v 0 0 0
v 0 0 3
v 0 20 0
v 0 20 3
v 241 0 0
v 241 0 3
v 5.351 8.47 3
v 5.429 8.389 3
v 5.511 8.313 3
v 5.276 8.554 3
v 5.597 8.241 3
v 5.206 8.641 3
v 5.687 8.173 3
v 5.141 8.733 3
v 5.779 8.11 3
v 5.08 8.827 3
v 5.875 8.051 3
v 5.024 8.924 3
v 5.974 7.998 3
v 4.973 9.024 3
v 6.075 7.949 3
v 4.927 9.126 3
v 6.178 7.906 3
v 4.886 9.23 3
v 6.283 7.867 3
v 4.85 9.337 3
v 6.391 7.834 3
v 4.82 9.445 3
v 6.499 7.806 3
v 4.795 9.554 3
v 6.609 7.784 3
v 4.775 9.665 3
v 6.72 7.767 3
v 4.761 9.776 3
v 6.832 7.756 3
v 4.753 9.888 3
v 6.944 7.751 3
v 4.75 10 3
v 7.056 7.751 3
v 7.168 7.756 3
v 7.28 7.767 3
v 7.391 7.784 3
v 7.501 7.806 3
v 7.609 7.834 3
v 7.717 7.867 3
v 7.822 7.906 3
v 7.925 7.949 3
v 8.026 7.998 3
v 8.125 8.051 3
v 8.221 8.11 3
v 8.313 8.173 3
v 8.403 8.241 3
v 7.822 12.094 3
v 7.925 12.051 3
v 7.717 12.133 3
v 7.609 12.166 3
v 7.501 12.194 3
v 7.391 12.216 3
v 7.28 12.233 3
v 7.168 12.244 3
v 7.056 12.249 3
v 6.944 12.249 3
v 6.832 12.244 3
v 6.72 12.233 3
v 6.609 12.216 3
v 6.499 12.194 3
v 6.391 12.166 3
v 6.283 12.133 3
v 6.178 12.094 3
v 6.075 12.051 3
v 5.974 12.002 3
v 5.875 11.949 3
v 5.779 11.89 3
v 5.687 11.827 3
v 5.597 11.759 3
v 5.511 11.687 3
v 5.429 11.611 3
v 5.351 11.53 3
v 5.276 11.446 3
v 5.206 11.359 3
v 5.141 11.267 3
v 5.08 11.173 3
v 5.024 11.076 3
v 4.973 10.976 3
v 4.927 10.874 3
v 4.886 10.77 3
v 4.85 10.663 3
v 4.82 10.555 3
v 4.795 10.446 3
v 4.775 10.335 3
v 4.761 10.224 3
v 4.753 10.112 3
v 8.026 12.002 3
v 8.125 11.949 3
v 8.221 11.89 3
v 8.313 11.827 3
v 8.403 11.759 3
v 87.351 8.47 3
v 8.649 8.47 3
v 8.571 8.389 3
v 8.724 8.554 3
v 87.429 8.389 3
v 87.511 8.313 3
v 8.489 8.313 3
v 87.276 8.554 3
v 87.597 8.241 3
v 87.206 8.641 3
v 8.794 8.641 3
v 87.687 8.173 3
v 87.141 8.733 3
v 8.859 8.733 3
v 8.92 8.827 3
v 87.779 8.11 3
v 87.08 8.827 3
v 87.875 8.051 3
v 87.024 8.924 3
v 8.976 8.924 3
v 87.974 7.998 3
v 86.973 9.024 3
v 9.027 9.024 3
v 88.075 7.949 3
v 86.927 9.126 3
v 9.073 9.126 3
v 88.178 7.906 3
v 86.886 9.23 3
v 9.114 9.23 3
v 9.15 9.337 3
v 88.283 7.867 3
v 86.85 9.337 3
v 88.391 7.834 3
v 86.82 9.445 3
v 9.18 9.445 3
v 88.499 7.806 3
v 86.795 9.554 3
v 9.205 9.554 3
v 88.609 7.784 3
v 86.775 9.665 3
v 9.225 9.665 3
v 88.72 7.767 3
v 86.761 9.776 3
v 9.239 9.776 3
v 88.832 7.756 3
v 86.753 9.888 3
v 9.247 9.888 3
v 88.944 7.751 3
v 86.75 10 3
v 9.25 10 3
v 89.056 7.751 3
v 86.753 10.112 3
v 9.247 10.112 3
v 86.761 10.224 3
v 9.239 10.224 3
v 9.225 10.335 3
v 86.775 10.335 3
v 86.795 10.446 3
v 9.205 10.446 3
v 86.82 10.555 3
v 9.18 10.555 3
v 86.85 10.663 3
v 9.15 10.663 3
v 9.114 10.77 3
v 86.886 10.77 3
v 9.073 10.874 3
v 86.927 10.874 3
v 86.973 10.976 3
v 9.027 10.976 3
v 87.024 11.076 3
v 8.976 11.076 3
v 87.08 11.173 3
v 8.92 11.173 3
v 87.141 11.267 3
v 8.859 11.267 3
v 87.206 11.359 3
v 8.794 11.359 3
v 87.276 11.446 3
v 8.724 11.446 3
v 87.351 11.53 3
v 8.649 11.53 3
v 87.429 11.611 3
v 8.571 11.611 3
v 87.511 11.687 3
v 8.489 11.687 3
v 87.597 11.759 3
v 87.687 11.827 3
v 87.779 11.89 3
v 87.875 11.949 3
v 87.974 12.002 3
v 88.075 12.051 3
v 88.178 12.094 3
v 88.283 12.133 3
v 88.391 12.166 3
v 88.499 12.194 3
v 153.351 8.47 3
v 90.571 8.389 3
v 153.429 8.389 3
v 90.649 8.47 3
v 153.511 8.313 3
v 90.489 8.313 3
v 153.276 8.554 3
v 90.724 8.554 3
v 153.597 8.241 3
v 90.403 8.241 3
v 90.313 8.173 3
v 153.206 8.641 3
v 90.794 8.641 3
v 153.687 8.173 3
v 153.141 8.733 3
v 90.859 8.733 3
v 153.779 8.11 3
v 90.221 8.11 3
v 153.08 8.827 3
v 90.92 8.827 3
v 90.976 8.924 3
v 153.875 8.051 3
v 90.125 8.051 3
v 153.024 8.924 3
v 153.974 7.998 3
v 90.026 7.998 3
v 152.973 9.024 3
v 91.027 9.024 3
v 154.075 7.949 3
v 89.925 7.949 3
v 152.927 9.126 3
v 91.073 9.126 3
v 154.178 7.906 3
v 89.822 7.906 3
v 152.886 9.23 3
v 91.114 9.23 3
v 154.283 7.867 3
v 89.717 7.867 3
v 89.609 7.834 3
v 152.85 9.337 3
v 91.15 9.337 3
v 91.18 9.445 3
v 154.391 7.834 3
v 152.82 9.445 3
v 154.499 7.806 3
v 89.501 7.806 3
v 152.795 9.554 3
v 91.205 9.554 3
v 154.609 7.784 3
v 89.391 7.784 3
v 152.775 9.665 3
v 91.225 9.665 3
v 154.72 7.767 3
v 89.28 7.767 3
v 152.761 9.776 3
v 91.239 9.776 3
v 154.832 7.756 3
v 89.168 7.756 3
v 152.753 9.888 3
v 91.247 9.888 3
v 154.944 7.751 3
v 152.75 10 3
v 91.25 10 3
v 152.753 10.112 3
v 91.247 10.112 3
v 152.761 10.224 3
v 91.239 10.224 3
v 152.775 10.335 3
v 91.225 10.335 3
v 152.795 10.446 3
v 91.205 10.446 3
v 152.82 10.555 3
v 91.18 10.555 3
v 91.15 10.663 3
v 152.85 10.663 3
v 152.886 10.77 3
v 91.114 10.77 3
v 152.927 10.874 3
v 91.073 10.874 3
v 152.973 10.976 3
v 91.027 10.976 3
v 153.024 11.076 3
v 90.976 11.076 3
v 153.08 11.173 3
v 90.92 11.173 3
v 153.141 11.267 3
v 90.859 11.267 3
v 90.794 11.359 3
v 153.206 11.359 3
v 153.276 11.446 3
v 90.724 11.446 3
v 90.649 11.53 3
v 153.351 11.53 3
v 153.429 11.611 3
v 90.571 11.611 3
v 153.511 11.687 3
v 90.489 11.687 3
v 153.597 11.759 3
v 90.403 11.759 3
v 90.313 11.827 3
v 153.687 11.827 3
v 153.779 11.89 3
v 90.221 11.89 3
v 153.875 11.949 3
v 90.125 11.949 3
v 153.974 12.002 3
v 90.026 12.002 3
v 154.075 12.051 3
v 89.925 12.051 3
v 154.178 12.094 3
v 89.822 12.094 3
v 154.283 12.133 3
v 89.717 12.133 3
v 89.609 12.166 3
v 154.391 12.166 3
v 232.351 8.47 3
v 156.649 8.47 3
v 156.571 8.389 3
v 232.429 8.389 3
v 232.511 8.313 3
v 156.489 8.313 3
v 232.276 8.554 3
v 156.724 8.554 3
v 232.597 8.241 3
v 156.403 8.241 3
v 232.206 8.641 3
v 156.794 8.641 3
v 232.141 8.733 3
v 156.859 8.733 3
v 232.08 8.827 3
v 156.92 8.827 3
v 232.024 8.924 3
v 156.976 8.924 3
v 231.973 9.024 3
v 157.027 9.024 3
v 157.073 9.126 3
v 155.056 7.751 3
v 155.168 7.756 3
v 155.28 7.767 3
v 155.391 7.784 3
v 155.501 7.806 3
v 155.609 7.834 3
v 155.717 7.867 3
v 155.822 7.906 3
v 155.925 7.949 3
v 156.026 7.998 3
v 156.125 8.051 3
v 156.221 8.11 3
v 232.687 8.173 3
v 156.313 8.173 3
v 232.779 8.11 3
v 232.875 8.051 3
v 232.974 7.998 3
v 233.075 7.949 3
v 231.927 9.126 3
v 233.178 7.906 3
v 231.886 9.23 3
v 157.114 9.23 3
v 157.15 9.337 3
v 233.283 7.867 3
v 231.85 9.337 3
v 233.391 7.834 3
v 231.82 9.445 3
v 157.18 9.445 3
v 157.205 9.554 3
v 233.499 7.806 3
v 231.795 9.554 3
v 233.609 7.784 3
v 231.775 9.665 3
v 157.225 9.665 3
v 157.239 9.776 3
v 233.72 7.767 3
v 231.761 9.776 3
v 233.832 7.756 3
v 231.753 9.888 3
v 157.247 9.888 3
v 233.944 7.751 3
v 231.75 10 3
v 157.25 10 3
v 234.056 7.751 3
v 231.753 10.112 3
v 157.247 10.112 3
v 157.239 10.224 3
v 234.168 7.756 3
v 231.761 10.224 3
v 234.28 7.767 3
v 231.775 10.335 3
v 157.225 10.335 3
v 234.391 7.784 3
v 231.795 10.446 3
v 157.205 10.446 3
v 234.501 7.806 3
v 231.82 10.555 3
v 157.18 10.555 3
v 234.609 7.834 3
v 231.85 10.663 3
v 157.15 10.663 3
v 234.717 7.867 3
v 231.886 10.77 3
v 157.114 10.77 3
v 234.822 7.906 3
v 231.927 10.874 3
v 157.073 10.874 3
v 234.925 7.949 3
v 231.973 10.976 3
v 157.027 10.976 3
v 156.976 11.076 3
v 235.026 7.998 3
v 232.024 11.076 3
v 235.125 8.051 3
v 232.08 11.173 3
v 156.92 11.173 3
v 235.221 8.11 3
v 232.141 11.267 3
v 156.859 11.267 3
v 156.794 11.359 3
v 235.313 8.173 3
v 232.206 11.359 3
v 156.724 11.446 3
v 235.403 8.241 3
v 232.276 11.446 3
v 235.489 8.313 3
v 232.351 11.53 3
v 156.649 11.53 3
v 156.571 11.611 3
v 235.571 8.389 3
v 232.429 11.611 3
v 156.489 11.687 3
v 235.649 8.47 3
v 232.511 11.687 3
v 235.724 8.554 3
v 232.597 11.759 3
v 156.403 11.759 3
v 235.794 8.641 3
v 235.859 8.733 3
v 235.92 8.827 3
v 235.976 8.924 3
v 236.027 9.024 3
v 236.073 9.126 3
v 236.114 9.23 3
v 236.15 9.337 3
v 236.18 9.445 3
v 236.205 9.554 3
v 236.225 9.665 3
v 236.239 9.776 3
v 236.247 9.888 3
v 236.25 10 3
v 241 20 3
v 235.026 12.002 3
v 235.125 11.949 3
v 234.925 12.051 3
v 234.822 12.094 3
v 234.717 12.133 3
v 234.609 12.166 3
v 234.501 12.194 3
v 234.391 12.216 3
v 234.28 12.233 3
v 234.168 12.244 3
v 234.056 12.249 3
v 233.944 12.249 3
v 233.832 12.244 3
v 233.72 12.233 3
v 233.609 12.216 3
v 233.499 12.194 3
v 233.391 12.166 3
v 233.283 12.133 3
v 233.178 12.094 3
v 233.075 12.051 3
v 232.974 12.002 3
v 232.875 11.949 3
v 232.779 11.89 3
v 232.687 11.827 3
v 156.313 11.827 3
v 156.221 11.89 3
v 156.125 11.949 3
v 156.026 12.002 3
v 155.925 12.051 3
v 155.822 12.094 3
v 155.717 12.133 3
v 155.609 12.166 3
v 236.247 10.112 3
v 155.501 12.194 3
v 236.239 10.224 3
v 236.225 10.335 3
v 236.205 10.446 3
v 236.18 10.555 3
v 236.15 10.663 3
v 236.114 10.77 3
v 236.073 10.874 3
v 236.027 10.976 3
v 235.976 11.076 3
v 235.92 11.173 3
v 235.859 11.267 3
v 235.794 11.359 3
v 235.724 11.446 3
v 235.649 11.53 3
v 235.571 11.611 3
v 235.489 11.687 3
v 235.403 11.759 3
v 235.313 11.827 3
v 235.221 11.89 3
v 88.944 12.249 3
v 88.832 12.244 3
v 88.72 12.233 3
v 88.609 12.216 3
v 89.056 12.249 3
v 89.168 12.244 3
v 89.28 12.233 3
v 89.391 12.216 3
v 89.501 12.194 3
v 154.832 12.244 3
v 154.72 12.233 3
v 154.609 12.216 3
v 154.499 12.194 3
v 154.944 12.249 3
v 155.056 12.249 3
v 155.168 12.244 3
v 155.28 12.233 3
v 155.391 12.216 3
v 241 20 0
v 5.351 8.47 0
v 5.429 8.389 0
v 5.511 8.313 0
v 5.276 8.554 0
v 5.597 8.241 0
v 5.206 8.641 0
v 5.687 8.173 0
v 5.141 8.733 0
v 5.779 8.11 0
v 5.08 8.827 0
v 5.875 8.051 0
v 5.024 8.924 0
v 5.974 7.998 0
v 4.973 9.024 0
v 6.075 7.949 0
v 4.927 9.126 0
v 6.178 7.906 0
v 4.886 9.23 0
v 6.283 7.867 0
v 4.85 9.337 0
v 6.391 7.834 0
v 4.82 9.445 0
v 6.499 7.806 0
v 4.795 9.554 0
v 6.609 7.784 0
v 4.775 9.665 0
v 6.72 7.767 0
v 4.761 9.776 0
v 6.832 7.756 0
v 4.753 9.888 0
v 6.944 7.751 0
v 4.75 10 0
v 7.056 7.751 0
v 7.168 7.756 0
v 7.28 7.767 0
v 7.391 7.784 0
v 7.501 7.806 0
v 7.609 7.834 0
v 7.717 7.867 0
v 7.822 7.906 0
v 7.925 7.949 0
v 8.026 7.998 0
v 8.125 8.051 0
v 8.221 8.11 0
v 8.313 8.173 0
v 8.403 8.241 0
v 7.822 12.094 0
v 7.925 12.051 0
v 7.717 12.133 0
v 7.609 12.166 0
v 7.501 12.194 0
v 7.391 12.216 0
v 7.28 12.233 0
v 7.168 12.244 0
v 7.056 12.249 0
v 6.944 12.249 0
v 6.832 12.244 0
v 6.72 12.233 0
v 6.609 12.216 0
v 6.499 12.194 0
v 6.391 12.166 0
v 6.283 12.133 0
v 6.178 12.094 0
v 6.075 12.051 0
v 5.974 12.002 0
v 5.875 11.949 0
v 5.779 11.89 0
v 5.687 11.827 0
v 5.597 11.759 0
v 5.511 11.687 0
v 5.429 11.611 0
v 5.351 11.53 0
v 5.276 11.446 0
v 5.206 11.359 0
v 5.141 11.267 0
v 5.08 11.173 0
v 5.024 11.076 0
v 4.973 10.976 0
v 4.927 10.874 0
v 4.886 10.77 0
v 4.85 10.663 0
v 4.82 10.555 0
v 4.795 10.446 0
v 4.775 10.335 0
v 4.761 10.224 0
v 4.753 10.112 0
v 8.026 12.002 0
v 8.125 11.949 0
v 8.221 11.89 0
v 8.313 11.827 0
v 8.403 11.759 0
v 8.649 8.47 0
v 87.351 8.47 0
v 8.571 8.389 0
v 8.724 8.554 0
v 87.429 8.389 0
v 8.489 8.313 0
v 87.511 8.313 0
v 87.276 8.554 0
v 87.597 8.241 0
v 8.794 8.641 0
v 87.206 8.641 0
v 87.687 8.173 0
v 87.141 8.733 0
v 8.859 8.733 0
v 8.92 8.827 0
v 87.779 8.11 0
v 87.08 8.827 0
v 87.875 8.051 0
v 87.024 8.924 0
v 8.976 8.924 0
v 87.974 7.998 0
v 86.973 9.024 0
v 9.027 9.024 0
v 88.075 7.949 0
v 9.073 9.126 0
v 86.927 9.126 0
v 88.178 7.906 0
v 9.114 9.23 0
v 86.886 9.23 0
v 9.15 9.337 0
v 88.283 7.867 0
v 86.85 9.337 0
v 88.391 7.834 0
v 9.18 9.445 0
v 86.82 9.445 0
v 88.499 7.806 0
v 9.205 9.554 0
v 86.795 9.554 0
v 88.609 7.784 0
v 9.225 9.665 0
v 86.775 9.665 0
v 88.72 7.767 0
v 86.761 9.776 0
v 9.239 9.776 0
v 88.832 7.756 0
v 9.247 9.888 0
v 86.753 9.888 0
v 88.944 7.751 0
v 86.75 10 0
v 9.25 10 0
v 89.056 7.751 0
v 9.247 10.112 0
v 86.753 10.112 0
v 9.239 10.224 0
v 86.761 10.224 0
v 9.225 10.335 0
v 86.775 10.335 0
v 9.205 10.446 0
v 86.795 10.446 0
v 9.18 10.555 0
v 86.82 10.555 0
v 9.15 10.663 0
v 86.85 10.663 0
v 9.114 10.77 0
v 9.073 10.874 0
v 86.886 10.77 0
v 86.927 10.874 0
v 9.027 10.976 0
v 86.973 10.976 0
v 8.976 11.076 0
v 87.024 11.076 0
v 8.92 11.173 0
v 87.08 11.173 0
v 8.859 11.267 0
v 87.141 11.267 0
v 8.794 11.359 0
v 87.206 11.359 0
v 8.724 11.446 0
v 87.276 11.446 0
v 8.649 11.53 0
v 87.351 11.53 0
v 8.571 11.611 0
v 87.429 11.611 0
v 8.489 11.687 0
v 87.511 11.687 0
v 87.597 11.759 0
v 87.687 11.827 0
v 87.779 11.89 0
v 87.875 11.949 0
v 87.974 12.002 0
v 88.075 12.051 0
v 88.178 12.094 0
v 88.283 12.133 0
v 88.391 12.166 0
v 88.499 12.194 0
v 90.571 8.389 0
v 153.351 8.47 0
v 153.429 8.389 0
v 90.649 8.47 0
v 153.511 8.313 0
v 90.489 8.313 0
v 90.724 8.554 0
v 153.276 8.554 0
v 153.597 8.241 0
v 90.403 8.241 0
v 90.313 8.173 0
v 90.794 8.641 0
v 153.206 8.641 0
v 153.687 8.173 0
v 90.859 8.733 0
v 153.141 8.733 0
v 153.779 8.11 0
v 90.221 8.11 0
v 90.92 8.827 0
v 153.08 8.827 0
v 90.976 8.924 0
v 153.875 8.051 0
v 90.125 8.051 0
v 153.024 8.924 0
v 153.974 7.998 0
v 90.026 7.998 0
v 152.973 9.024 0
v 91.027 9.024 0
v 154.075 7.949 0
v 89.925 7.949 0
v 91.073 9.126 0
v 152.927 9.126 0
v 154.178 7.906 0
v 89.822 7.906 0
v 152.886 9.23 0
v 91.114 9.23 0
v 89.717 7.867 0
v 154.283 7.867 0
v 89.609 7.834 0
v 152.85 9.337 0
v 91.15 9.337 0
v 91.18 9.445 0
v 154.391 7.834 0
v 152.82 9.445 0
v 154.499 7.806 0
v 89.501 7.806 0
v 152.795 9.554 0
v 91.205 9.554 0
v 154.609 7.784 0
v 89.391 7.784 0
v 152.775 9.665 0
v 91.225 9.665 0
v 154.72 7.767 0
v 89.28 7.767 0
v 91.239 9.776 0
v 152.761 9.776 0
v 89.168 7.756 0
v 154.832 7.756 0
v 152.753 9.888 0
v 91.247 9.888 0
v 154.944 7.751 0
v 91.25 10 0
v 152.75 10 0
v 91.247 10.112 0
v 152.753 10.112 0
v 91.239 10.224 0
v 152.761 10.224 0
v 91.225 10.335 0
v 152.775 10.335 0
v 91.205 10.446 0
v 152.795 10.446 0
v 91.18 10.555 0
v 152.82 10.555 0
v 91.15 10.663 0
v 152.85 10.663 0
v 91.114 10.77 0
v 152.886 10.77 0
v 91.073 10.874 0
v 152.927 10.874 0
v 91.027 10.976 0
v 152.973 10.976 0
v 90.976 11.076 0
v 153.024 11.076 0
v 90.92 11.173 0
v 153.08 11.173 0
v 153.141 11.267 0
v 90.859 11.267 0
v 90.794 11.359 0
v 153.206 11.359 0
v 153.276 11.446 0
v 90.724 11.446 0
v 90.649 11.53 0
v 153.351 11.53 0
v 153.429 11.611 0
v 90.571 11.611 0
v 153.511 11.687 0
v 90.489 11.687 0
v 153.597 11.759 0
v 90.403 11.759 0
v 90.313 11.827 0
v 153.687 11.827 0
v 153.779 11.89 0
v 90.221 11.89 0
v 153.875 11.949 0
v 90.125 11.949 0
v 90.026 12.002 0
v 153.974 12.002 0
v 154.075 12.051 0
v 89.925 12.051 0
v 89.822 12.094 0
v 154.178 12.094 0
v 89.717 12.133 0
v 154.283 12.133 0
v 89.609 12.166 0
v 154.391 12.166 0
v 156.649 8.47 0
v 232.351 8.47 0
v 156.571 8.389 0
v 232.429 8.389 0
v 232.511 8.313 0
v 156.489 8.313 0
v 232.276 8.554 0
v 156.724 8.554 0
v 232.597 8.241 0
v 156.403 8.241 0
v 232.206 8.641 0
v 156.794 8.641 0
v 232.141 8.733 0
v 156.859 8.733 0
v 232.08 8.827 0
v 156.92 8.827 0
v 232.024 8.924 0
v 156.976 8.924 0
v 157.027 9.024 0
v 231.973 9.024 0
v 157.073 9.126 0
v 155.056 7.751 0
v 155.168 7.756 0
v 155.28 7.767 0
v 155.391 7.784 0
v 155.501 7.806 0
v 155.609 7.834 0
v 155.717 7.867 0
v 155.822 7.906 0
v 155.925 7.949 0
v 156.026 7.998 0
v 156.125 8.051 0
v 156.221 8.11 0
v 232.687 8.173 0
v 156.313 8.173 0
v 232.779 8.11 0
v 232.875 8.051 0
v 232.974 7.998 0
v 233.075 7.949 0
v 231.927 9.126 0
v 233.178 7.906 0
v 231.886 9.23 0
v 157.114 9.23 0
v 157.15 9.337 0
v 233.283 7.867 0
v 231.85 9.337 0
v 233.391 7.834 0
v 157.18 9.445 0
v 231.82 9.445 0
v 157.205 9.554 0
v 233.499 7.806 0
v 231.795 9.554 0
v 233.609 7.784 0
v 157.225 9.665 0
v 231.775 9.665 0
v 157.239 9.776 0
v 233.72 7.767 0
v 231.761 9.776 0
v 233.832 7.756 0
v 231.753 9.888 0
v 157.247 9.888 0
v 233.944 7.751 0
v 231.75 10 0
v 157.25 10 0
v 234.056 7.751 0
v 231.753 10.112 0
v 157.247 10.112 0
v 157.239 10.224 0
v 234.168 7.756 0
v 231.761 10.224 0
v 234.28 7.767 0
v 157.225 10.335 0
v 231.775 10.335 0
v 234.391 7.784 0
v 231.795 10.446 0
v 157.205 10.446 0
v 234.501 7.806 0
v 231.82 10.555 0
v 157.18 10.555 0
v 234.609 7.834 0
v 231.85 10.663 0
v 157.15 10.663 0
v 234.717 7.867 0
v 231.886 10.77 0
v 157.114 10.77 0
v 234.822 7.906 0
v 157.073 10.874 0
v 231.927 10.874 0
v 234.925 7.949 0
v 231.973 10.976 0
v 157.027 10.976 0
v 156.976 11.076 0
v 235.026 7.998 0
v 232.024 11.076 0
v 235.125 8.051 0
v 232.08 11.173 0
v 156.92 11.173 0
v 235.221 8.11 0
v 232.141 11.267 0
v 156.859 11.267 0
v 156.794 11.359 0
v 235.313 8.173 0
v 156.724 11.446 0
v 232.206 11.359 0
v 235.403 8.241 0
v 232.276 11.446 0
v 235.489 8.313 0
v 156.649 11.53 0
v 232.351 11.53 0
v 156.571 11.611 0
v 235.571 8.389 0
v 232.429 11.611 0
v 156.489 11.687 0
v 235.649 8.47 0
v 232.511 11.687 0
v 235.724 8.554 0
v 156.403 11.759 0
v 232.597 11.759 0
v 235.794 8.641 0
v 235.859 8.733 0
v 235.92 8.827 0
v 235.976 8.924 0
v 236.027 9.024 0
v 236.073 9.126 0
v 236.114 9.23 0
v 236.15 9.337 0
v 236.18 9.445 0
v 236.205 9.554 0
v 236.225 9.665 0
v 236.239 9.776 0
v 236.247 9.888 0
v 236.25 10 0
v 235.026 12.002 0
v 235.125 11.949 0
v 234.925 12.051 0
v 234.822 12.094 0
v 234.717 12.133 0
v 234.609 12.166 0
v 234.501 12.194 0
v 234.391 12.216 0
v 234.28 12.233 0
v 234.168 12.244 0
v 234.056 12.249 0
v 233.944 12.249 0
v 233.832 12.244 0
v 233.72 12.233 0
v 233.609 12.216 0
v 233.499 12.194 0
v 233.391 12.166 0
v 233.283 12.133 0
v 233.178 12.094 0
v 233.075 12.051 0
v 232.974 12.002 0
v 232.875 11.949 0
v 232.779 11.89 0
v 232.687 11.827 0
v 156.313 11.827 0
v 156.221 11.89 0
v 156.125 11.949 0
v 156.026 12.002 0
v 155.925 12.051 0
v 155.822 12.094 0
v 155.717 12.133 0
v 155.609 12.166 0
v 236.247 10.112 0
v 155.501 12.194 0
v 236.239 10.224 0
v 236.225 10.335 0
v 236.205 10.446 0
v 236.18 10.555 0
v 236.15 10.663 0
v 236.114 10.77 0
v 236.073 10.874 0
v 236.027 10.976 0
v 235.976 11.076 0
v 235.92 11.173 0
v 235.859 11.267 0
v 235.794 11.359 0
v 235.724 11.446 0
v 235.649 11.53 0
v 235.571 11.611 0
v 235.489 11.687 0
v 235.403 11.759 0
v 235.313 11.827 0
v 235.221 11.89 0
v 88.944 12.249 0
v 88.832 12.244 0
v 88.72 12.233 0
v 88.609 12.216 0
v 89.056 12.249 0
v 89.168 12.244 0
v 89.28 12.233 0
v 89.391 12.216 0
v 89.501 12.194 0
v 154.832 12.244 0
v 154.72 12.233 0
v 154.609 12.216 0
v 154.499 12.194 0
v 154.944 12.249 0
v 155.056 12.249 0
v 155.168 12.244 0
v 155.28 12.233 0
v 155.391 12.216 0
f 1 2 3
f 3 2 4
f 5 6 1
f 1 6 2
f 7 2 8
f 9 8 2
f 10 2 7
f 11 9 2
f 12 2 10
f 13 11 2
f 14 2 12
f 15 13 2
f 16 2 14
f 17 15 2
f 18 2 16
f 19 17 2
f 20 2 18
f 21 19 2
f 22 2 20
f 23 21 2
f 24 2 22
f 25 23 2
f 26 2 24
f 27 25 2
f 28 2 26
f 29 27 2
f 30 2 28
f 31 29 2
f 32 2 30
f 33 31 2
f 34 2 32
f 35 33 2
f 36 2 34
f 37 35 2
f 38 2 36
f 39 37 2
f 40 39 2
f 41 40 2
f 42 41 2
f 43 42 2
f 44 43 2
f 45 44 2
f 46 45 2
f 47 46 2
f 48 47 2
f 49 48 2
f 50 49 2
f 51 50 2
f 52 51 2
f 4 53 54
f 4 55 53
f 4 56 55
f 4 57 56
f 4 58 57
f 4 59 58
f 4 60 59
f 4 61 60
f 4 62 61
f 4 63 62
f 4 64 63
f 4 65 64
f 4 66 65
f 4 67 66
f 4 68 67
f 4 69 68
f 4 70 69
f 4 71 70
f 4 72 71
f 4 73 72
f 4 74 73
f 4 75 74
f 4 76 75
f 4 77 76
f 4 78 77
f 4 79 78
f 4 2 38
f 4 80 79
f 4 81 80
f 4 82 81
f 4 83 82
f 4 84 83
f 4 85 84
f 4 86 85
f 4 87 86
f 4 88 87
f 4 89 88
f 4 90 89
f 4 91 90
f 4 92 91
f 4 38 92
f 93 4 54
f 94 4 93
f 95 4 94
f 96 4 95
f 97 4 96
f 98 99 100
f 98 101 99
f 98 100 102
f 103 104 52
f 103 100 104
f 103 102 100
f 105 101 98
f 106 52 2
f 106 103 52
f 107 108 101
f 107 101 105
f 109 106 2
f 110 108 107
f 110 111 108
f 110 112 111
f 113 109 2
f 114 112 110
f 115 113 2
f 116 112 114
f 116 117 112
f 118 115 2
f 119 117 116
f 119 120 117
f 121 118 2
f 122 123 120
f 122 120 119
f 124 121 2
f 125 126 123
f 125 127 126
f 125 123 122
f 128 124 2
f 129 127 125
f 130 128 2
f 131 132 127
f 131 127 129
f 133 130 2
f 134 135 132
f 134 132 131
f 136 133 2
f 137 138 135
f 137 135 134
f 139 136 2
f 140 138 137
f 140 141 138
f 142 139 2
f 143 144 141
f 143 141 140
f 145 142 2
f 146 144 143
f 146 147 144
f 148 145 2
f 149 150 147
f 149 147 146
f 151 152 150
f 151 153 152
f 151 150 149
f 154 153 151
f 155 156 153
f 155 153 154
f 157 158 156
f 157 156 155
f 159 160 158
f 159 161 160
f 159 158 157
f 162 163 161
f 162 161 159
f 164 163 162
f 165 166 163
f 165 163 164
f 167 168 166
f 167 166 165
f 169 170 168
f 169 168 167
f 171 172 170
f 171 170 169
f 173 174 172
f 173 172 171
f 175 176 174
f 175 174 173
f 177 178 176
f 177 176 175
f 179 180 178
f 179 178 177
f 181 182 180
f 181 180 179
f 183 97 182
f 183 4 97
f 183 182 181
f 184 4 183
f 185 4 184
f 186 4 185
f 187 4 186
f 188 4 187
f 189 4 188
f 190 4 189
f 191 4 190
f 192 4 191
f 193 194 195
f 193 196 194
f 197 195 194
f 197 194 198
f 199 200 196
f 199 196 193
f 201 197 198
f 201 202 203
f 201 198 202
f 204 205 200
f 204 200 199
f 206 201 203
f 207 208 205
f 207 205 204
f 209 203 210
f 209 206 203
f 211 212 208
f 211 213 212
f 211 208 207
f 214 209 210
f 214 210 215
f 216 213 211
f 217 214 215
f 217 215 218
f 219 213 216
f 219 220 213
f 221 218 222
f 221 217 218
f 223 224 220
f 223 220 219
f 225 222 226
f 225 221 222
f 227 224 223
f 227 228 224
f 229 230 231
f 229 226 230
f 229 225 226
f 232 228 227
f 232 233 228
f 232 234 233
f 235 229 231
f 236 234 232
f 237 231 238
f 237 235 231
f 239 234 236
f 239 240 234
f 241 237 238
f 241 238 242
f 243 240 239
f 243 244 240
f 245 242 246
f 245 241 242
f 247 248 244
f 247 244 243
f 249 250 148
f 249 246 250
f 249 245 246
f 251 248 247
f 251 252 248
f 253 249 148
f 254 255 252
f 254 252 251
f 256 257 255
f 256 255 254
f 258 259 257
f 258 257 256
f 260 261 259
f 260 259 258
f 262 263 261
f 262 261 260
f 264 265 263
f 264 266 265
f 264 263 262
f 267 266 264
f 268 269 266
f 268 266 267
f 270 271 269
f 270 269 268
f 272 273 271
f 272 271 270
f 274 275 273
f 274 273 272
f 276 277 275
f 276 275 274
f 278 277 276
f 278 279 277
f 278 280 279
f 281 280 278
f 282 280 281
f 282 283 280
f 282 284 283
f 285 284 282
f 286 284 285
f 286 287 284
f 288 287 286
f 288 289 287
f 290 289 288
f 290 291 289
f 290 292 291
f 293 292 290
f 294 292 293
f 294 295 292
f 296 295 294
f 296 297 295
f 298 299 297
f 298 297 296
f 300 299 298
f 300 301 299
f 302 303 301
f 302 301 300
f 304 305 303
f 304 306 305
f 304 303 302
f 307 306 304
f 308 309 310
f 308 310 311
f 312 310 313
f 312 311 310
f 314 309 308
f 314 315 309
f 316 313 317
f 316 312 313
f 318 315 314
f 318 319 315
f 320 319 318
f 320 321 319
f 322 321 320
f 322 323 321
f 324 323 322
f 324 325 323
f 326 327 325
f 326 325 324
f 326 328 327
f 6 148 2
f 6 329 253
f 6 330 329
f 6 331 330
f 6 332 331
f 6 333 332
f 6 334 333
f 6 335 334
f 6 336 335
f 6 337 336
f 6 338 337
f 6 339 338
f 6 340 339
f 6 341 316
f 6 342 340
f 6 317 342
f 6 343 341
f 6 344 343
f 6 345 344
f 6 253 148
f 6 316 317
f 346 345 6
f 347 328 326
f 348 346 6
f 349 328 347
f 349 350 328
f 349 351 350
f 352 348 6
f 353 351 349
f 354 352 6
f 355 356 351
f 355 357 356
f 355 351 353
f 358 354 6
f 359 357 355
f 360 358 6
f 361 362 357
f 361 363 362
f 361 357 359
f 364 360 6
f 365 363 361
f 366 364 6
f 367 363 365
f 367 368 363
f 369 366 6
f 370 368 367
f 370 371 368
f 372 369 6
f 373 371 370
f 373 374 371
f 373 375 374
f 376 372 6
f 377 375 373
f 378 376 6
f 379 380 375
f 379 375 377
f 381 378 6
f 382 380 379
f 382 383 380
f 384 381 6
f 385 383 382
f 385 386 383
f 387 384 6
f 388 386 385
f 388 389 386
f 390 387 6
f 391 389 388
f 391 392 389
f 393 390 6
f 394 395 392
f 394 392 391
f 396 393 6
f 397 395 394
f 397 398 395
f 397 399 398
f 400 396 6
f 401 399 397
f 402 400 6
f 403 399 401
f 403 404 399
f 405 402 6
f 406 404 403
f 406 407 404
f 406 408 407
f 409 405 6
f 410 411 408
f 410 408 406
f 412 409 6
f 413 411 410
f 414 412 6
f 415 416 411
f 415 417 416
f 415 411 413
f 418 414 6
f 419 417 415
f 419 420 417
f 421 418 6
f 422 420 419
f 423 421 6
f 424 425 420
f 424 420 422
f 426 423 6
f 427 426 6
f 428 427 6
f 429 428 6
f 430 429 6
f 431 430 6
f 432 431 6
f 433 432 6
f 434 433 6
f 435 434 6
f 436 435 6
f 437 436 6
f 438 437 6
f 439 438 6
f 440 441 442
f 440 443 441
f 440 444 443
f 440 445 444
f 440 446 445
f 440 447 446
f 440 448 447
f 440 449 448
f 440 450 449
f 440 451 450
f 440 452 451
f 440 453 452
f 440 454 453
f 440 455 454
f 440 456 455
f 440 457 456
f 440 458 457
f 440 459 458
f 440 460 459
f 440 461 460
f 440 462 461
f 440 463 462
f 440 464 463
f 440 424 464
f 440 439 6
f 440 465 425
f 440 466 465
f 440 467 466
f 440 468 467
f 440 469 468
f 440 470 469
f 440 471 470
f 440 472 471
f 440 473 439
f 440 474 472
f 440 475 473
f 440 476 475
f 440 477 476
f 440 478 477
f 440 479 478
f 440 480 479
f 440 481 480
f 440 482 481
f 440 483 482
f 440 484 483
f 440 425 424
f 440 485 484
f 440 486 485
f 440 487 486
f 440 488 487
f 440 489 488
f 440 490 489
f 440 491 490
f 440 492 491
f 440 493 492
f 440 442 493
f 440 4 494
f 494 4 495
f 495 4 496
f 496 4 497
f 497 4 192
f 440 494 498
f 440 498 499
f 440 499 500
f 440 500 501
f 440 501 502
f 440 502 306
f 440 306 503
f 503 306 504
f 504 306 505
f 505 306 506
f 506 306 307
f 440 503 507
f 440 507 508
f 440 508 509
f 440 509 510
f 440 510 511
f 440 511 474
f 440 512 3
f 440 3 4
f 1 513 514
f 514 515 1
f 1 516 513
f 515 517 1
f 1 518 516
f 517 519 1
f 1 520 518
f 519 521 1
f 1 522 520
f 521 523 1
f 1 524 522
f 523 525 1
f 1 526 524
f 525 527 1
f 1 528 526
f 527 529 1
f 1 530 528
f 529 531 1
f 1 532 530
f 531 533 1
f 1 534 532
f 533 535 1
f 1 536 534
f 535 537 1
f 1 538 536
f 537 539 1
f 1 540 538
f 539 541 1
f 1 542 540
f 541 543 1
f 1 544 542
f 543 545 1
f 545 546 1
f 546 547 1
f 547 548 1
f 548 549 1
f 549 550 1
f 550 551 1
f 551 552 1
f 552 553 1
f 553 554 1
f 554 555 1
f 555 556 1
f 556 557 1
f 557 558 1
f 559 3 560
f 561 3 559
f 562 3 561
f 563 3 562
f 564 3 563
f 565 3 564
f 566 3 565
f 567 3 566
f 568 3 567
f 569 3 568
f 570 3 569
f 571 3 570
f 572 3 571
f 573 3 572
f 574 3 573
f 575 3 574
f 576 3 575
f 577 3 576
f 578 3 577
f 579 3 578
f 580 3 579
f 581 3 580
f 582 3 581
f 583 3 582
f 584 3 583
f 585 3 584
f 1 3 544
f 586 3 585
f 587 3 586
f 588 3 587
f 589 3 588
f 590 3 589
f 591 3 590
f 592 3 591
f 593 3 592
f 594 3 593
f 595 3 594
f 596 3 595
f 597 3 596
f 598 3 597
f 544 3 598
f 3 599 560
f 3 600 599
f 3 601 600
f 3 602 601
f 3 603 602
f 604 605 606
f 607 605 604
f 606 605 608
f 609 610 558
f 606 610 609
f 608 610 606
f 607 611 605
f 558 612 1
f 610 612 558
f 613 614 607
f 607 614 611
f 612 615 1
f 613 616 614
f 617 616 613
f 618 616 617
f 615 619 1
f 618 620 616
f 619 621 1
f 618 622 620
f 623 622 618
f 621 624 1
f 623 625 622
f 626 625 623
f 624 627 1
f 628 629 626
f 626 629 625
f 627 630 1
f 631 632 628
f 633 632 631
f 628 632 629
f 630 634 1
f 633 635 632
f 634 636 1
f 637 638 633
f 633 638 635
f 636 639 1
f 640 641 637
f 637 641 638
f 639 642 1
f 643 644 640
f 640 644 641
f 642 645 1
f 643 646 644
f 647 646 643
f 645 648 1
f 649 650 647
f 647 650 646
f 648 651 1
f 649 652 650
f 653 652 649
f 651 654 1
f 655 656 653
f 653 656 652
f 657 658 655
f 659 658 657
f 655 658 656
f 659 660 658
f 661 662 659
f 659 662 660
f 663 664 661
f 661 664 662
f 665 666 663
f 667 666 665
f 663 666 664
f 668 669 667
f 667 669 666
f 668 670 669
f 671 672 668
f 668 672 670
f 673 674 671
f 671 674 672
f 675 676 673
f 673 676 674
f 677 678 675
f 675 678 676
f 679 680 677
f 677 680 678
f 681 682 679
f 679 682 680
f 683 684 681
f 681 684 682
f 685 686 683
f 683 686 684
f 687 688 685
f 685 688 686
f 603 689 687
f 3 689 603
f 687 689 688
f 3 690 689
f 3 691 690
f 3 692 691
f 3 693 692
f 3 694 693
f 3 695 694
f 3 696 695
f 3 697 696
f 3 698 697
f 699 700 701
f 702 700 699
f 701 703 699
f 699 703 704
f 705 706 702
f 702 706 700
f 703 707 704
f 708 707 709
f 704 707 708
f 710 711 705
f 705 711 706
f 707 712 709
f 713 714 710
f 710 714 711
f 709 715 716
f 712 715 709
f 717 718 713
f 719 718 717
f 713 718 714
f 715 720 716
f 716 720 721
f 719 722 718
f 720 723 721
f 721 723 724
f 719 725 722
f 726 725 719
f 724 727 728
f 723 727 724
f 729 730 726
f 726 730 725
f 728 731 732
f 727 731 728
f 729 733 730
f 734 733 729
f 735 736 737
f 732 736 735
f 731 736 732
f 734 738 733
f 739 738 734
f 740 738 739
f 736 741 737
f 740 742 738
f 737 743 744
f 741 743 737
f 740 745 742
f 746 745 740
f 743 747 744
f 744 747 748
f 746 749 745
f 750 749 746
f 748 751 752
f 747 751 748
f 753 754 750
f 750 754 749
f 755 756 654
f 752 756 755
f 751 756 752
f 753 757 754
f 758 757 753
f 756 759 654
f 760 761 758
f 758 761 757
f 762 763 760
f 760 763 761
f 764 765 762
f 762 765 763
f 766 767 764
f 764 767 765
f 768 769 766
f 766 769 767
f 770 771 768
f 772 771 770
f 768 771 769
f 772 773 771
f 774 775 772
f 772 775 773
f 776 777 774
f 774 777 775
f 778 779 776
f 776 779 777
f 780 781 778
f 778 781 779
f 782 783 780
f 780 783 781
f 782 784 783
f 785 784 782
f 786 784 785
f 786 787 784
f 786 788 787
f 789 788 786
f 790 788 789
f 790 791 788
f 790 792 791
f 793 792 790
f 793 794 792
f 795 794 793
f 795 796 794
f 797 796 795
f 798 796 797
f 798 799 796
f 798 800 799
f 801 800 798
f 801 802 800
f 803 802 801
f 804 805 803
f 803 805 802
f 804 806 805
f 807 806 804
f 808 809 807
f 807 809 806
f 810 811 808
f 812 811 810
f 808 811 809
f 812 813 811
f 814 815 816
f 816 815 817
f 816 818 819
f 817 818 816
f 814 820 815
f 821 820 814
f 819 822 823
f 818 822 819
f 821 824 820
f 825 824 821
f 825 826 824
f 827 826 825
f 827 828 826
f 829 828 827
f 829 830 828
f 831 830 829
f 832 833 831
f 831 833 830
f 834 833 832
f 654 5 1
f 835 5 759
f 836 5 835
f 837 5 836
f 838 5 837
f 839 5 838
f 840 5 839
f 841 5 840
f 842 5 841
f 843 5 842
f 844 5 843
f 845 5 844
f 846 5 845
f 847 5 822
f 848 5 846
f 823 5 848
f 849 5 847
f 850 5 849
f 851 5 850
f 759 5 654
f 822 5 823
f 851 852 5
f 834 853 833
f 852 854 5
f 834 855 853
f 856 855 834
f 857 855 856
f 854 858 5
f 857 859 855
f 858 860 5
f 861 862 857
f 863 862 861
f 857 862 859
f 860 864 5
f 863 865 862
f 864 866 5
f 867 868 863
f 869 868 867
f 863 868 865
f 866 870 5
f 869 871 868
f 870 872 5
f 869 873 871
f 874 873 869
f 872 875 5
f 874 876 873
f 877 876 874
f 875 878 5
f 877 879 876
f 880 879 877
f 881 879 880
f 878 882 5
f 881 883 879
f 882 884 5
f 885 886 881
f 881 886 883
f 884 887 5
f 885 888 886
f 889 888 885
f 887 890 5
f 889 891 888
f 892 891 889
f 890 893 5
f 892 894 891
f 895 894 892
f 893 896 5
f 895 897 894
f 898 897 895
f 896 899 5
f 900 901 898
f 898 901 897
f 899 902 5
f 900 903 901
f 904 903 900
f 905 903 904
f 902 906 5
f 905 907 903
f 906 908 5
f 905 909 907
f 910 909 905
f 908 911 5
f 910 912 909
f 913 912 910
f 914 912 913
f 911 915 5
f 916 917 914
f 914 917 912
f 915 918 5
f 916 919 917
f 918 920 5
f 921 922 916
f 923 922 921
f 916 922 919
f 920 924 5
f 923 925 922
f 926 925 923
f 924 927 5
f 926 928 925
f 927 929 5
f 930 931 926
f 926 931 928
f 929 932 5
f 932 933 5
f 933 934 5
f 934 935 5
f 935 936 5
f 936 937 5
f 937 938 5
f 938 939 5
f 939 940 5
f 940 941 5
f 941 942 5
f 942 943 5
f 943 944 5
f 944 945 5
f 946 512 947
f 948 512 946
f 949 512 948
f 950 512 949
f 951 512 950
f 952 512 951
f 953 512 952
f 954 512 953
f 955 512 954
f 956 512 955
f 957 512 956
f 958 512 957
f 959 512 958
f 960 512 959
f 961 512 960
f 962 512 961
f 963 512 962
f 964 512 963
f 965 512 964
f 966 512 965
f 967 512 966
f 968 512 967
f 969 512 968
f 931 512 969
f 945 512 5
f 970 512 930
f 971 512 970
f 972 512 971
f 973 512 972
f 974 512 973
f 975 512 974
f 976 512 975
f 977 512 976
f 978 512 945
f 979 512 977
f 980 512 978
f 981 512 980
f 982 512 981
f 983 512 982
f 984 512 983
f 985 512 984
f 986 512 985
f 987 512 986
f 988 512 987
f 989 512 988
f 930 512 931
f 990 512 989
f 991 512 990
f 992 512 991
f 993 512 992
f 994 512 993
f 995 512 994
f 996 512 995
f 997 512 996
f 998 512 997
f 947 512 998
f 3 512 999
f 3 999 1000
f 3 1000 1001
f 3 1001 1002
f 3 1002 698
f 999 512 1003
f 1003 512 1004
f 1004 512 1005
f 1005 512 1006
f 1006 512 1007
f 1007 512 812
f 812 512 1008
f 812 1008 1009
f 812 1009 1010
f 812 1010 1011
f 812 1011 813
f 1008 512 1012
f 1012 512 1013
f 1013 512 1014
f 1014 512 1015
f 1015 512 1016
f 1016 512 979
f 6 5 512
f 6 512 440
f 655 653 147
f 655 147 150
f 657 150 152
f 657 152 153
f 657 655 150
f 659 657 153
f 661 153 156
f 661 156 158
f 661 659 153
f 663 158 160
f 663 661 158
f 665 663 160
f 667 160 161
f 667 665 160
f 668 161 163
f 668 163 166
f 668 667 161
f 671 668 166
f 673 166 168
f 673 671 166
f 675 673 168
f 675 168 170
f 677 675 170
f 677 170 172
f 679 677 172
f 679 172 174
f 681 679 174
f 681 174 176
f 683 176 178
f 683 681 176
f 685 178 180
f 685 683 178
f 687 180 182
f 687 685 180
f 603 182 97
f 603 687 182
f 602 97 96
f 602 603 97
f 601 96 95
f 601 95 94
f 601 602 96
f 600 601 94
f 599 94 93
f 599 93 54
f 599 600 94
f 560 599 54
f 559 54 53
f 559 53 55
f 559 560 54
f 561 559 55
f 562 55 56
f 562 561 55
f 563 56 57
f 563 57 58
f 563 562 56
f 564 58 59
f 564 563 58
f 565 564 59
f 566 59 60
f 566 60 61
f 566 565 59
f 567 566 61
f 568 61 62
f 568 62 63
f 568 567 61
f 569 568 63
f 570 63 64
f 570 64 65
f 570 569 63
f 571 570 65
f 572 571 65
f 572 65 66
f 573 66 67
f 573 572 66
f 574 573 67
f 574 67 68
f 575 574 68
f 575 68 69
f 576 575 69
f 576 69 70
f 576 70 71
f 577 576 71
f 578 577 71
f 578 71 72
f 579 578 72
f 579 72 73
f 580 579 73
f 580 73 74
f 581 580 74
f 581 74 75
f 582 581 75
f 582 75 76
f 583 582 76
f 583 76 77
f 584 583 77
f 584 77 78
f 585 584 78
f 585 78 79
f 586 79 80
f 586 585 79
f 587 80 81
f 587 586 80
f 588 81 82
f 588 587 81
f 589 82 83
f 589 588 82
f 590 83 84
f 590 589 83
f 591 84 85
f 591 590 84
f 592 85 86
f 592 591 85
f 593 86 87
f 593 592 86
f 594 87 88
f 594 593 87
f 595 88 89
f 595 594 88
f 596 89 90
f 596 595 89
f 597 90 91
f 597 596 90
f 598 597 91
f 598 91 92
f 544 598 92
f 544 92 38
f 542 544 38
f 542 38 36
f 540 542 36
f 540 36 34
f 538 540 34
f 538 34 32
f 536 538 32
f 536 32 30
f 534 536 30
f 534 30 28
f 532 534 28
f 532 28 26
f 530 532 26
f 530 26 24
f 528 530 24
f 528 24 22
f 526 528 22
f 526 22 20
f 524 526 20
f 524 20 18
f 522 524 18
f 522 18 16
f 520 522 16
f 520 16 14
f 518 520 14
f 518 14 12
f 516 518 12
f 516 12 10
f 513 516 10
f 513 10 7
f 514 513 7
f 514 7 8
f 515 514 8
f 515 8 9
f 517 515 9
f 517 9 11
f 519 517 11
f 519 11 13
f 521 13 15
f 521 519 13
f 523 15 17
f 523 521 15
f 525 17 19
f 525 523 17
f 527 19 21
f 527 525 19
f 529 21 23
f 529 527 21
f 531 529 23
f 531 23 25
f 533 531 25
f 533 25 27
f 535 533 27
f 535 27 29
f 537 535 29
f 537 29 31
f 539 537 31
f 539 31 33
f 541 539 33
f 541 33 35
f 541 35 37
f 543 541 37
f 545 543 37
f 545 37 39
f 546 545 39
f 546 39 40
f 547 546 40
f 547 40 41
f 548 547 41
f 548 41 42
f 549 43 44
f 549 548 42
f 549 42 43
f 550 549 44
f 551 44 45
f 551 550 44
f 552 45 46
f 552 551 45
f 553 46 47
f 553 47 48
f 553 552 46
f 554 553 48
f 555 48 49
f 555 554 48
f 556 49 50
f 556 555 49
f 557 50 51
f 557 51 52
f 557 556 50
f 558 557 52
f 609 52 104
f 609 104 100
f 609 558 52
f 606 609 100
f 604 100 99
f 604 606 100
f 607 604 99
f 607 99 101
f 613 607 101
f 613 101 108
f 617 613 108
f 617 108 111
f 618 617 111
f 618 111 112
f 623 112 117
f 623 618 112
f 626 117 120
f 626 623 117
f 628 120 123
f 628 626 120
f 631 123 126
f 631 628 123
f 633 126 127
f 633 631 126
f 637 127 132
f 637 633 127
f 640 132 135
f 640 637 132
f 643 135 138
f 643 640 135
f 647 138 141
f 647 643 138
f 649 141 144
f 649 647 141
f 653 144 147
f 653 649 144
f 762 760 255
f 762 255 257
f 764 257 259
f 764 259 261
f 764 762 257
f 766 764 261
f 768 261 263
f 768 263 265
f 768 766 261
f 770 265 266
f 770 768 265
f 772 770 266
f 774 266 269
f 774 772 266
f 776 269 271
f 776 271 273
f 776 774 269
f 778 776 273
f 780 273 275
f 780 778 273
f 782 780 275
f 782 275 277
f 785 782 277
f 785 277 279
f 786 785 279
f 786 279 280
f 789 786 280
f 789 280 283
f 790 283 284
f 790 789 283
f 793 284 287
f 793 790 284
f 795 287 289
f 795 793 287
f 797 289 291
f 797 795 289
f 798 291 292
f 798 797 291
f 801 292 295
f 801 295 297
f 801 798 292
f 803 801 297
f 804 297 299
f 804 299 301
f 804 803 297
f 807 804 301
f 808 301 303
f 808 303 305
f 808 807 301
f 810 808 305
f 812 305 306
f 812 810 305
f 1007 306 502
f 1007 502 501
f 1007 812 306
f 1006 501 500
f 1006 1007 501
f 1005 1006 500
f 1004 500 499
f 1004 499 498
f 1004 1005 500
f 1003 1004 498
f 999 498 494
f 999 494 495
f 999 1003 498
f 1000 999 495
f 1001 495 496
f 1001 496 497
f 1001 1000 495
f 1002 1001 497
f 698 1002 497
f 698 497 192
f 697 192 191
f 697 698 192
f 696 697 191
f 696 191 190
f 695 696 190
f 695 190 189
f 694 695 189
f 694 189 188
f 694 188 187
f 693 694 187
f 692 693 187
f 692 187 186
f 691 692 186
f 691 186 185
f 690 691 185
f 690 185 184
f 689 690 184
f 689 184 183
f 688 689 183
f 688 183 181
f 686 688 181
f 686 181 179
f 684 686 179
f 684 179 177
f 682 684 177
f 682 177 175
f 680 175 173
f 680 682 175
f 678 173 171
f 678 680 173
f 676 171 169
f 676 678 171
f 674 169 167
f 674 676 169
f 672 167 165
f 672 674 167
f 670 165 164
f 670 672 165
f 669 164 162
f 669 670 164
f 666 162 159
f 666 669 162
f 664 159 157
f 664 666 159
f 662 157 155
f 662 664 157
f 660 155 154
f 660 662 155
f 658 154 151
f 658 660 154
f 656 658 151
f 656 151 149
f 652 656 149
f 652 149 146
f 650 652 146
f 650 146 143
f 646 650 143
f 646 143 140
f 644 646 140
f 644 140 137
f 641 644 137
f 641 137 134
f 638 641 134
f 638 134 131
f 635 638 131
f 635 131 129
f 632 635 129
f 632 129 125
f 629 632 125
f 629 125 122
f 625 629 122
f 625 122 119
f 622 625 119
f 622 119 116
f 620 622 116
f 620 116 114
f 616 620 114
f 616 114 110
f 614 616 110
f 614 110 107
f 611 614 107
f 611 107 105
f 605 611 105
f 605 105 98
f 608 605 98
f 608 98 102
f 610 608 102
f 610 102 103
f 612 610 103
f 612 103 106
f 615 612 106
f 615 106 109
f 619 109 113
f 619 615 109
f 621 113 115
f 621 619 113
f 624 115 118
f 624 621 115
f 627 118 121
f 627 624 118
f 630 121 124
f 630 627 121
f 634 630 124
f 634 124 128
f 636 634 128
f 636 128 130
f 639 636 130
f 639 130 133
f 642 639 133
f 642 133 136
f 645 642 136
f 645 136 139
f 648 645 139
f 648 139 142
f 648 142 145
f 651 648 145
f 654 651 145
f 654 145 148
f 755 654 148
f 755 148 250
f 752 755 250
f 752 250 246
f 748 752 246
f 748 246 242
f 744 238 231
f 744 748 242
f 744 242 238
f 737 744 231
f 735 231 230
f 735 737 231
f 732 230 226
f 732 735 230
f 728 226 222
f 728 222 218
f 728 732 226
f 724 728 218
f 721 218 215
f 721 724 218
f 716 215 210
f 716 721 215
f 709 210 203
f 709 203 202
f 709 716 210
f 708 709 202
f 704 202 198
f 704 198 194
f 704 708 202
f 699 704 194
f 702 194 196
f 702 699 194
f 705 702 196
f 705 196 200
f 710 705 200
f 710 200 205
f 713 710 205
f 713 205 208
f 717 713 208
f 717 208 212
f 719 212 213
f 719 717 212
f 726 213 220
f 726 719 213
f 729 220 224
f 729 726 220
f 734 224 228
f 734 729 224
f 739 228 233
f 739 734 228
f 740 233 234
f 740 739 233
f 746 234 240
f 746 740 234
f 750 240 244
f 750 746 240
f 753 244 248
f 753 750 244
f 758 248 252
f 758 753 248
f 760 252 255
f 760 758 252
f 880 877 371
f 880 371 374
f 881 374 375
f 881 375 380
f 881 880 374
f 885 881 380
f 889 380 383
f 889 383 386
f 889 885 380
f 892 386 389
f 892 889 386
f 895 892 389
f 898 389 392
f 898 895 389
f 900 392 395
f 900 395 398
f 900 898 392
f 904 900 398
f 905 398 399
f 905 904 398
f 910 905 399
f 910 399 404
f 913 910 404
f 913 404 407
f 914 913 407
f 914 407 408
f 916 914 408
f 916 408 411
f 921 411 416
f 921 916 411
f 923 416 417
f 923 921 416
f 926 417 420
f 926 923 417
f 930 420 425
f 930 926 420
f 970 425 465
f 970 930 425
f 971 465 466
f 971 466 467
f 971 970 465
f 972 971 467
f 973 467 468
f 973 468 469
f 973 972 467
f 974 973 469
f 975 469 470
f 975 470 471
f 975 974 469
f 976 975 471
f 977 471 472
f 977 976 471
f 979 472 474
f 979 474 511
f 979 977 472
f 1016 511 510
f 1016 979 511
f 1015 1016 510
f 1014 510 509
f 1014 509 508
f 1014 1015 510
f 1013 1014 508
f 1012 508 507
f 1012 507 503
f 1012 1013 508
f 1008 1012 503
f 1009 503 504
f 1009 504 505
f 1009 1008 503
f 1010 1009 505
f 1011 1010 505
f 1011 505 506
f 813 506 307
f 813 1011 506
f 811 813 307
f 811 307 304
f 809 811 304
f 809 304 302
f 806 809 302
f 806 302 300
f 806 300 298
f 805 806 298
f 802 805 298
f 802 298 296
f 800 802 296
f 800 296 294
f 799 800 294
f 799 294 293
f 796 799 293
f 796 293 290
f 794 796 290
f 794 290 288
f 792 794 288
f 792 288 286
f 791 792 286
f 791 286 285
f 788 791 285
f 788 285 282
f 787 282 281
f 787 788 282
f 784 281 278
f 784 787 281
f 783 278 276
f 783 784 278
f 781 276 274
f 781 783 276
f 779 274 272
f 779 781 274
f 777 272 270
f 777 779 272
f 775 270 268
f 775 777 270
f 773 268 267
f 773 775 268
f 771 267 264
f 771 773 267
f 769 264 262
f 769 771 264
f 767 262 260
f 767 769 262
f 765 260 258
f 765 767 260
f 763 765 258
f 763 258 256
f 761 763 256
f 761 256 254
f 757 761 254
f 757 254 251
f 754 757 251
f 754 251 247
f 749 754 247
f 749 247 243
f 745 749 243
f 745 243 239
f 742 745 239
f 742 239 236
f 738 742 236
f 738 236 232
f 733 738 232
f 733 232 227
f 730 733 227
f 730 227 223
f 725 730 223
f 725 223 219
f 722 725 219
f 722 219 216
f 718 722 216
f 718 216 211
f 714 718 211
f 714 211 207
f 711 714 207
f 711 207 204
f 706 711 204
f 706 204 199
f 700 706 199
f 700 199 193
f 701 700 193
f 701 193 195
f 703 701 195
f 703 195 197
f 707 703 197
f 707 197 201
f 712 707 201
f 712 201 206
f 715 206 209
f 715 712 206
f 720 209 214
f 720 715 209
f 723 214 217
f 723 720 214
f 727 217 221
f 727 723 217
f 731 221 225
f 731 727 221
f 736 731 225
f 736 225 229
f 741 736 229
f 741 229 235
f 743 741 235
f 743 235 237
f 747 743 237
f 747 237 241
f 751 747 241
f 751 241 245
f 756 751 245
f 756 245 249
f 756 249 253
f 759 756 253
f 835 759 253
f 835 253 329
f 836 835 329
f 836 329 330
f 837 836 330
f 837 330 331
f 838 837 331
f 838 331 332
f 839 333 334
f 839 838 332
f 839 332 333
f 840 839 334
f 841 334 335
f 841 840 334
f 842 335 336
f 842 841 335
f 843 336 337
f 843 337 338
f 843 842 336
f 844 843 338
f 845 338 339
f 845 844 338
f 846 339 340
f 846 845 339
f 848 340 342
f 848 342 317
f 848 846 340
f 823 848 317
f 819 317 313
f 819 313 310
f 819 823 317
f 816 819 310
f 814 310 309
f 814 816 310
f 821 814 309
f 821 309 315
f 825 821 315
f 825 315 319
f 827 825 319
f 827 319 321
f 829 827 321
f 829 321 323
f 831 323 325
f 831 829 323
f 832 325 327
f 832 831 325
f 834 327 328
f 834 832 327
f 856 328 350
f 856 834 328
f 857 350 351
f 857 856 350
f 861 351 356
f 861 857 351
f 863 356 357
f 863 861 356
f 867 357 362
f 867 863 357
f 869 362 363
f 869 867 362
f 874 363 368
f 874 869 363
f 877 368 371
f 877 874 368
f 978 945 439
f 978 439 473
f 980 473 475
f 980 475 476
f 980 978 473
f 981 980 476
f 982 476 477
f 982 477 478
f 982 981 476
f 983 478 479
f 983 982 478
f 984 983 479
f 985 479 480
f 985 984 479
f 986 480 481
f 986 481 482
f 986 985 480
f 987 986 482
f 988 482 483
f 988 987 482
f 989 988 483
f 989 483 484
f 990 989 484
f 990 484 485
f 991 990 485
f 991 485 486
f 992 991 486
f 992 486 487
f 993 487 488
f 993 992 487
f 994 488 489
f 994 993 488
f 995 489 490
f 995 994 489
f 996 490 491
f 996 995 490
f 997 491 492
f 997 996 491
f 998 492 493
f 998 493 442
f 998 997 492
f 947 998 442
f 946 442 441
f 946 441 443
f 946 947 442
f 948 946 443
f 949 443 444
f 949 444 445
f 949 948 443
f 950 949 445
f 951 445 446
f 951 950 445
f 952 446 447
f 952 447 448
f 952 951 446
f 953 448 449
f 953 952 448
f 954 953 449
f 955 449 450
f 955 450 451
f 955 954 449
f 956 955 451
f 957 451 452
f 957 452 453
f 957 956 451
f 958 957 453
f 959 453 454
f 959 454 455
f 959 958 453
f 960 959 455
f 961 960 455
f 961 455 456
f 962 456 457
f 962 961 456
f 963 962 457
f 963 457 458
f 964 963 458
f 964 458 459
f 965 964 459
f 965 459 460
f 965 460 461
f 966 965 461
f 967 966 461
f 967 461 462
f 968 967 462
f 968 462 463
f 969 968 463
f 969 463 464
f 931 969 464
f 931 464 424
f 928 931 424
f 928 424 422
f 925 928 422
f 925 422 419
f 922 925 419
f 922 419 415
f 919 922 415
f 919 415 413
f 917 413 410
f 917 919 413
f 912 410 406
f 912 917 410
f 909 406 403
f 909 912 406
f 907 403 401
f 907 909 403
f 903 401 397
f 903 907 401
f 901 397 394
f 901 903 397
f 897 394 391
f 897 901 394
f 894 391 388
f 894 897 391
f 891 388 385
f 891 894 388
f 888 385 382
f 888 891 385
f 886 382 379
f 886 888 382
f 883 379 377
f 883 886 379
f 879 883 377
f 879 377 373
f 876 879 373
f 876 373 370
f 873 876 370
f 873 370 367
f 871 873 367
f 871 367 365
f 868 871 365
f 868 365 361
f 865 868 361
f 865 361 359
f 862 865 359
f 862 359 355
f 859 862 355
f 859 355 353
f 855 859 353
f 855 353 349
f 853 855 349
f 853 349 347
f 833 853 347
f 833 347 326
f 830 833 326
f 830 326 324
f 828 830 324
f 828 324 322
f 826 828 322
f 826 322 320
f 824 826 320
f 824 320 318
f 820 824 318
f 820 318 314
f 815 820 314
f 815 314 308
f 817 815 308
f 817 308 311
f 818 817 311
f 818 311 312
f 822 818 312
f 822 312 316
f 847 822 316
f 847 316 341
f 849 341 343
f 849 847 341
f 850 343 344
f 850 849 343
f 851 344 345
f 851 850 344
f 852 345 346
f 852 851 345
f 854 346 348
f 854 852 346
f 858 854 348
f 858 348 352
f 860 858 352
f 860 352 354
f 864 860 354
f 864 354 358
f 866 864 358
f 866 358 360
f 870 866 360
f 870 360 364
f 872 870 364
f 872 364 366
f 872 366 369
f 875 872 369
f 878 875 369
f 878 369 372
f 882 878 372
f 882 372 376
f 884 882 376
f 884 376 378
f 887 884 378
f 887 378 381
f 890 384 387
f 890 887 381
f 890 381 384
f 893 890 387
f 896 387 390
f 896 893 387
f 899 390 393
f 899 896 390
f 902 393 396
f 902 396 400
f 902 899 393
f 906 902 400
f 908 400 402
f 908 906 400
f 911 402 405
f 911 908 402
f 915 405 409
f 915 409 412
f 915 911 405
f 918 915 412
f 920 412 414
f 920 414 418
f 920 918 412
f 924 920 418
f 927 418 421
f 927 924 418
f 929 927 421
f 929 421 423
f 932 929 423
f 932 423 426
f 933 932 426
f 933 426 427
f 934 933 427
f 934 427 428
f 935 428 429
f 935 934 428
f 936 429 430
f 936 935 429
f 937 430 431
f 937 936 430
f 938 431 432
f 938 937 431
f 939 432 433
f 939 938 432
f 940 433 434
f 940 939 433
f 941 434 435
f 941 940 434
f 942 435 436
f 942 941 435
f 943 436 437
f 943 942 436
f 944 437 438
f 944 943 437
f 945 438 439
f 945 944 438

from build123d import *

# Parameters (mm, degrees)
BOX_W             = 241
BOX_H             = 20
BOX_DEPTH         = 3
CYLINDER_R        = 2.25
CYLINDER_DEPTH    = 3
CYLINDER001_R     = 2.25
CYLINDER001_DEPTH = 3
CYLINDER002_R     = 2.25
CYLINDER002_DEPTH = 3
CYLINDER003_R     = 2.25
CYLINDER003_DEPTH = 3


with BuildPart() as part:
    # Box → Box (join)
    with BuildSketch(Plane.XY):
        with Locations((120.5, 10)):
            Rectangle(BOX_W, BOX_H)
    extrude(amount=BOX_DEPTH)

    # Cylinder → Cylinder (cut)
    with BuildSketch(Plane(origin=(7, 10, 0), x_dir=(1, 0, 0), z_dir=(0, 0, 1))):
        Circle(CYLINDER_R)
    extrude(amount=CYLINDER_DEPTH, mode=Mode.SUBTRACT)

    # Cylinder001 → Cylinder001 (cut)
    with BuildSketch(Plane(origin=(234, 10, 0), x_dir=(1, 0, 0), z_dir=(0, 0, 1))):
        Circle(CYLINDER001_R)
    extrude(amount=CYLINDER001_DEPTH, mode=Mode.SUBTRACT)

    # Cylinder002 → Cylinder002 (cut)
    with BuildSketch(Plane(origin=(89, 10, 0), x_dir=(1, 0, 0), z_dir=(0, 0, 1))):
        Circle(CYLINDER002_R)
    extrude(amount=CYLINDER002_DEPTH, mode=Mode.SUBTRACT)

    # Cylinder003 → Cylinder003 (cut)
    with BuildSketch(Plane(origin=(155, 10, 0), x_dir=(1, 0, 0), z_dir=(0, 0, 1))):
        Circle(CYLINDER003_R)
    extrude(amount=CYLINDER003_DEPTH, mode=Mode.SUBTRACT)


solid = part.part
